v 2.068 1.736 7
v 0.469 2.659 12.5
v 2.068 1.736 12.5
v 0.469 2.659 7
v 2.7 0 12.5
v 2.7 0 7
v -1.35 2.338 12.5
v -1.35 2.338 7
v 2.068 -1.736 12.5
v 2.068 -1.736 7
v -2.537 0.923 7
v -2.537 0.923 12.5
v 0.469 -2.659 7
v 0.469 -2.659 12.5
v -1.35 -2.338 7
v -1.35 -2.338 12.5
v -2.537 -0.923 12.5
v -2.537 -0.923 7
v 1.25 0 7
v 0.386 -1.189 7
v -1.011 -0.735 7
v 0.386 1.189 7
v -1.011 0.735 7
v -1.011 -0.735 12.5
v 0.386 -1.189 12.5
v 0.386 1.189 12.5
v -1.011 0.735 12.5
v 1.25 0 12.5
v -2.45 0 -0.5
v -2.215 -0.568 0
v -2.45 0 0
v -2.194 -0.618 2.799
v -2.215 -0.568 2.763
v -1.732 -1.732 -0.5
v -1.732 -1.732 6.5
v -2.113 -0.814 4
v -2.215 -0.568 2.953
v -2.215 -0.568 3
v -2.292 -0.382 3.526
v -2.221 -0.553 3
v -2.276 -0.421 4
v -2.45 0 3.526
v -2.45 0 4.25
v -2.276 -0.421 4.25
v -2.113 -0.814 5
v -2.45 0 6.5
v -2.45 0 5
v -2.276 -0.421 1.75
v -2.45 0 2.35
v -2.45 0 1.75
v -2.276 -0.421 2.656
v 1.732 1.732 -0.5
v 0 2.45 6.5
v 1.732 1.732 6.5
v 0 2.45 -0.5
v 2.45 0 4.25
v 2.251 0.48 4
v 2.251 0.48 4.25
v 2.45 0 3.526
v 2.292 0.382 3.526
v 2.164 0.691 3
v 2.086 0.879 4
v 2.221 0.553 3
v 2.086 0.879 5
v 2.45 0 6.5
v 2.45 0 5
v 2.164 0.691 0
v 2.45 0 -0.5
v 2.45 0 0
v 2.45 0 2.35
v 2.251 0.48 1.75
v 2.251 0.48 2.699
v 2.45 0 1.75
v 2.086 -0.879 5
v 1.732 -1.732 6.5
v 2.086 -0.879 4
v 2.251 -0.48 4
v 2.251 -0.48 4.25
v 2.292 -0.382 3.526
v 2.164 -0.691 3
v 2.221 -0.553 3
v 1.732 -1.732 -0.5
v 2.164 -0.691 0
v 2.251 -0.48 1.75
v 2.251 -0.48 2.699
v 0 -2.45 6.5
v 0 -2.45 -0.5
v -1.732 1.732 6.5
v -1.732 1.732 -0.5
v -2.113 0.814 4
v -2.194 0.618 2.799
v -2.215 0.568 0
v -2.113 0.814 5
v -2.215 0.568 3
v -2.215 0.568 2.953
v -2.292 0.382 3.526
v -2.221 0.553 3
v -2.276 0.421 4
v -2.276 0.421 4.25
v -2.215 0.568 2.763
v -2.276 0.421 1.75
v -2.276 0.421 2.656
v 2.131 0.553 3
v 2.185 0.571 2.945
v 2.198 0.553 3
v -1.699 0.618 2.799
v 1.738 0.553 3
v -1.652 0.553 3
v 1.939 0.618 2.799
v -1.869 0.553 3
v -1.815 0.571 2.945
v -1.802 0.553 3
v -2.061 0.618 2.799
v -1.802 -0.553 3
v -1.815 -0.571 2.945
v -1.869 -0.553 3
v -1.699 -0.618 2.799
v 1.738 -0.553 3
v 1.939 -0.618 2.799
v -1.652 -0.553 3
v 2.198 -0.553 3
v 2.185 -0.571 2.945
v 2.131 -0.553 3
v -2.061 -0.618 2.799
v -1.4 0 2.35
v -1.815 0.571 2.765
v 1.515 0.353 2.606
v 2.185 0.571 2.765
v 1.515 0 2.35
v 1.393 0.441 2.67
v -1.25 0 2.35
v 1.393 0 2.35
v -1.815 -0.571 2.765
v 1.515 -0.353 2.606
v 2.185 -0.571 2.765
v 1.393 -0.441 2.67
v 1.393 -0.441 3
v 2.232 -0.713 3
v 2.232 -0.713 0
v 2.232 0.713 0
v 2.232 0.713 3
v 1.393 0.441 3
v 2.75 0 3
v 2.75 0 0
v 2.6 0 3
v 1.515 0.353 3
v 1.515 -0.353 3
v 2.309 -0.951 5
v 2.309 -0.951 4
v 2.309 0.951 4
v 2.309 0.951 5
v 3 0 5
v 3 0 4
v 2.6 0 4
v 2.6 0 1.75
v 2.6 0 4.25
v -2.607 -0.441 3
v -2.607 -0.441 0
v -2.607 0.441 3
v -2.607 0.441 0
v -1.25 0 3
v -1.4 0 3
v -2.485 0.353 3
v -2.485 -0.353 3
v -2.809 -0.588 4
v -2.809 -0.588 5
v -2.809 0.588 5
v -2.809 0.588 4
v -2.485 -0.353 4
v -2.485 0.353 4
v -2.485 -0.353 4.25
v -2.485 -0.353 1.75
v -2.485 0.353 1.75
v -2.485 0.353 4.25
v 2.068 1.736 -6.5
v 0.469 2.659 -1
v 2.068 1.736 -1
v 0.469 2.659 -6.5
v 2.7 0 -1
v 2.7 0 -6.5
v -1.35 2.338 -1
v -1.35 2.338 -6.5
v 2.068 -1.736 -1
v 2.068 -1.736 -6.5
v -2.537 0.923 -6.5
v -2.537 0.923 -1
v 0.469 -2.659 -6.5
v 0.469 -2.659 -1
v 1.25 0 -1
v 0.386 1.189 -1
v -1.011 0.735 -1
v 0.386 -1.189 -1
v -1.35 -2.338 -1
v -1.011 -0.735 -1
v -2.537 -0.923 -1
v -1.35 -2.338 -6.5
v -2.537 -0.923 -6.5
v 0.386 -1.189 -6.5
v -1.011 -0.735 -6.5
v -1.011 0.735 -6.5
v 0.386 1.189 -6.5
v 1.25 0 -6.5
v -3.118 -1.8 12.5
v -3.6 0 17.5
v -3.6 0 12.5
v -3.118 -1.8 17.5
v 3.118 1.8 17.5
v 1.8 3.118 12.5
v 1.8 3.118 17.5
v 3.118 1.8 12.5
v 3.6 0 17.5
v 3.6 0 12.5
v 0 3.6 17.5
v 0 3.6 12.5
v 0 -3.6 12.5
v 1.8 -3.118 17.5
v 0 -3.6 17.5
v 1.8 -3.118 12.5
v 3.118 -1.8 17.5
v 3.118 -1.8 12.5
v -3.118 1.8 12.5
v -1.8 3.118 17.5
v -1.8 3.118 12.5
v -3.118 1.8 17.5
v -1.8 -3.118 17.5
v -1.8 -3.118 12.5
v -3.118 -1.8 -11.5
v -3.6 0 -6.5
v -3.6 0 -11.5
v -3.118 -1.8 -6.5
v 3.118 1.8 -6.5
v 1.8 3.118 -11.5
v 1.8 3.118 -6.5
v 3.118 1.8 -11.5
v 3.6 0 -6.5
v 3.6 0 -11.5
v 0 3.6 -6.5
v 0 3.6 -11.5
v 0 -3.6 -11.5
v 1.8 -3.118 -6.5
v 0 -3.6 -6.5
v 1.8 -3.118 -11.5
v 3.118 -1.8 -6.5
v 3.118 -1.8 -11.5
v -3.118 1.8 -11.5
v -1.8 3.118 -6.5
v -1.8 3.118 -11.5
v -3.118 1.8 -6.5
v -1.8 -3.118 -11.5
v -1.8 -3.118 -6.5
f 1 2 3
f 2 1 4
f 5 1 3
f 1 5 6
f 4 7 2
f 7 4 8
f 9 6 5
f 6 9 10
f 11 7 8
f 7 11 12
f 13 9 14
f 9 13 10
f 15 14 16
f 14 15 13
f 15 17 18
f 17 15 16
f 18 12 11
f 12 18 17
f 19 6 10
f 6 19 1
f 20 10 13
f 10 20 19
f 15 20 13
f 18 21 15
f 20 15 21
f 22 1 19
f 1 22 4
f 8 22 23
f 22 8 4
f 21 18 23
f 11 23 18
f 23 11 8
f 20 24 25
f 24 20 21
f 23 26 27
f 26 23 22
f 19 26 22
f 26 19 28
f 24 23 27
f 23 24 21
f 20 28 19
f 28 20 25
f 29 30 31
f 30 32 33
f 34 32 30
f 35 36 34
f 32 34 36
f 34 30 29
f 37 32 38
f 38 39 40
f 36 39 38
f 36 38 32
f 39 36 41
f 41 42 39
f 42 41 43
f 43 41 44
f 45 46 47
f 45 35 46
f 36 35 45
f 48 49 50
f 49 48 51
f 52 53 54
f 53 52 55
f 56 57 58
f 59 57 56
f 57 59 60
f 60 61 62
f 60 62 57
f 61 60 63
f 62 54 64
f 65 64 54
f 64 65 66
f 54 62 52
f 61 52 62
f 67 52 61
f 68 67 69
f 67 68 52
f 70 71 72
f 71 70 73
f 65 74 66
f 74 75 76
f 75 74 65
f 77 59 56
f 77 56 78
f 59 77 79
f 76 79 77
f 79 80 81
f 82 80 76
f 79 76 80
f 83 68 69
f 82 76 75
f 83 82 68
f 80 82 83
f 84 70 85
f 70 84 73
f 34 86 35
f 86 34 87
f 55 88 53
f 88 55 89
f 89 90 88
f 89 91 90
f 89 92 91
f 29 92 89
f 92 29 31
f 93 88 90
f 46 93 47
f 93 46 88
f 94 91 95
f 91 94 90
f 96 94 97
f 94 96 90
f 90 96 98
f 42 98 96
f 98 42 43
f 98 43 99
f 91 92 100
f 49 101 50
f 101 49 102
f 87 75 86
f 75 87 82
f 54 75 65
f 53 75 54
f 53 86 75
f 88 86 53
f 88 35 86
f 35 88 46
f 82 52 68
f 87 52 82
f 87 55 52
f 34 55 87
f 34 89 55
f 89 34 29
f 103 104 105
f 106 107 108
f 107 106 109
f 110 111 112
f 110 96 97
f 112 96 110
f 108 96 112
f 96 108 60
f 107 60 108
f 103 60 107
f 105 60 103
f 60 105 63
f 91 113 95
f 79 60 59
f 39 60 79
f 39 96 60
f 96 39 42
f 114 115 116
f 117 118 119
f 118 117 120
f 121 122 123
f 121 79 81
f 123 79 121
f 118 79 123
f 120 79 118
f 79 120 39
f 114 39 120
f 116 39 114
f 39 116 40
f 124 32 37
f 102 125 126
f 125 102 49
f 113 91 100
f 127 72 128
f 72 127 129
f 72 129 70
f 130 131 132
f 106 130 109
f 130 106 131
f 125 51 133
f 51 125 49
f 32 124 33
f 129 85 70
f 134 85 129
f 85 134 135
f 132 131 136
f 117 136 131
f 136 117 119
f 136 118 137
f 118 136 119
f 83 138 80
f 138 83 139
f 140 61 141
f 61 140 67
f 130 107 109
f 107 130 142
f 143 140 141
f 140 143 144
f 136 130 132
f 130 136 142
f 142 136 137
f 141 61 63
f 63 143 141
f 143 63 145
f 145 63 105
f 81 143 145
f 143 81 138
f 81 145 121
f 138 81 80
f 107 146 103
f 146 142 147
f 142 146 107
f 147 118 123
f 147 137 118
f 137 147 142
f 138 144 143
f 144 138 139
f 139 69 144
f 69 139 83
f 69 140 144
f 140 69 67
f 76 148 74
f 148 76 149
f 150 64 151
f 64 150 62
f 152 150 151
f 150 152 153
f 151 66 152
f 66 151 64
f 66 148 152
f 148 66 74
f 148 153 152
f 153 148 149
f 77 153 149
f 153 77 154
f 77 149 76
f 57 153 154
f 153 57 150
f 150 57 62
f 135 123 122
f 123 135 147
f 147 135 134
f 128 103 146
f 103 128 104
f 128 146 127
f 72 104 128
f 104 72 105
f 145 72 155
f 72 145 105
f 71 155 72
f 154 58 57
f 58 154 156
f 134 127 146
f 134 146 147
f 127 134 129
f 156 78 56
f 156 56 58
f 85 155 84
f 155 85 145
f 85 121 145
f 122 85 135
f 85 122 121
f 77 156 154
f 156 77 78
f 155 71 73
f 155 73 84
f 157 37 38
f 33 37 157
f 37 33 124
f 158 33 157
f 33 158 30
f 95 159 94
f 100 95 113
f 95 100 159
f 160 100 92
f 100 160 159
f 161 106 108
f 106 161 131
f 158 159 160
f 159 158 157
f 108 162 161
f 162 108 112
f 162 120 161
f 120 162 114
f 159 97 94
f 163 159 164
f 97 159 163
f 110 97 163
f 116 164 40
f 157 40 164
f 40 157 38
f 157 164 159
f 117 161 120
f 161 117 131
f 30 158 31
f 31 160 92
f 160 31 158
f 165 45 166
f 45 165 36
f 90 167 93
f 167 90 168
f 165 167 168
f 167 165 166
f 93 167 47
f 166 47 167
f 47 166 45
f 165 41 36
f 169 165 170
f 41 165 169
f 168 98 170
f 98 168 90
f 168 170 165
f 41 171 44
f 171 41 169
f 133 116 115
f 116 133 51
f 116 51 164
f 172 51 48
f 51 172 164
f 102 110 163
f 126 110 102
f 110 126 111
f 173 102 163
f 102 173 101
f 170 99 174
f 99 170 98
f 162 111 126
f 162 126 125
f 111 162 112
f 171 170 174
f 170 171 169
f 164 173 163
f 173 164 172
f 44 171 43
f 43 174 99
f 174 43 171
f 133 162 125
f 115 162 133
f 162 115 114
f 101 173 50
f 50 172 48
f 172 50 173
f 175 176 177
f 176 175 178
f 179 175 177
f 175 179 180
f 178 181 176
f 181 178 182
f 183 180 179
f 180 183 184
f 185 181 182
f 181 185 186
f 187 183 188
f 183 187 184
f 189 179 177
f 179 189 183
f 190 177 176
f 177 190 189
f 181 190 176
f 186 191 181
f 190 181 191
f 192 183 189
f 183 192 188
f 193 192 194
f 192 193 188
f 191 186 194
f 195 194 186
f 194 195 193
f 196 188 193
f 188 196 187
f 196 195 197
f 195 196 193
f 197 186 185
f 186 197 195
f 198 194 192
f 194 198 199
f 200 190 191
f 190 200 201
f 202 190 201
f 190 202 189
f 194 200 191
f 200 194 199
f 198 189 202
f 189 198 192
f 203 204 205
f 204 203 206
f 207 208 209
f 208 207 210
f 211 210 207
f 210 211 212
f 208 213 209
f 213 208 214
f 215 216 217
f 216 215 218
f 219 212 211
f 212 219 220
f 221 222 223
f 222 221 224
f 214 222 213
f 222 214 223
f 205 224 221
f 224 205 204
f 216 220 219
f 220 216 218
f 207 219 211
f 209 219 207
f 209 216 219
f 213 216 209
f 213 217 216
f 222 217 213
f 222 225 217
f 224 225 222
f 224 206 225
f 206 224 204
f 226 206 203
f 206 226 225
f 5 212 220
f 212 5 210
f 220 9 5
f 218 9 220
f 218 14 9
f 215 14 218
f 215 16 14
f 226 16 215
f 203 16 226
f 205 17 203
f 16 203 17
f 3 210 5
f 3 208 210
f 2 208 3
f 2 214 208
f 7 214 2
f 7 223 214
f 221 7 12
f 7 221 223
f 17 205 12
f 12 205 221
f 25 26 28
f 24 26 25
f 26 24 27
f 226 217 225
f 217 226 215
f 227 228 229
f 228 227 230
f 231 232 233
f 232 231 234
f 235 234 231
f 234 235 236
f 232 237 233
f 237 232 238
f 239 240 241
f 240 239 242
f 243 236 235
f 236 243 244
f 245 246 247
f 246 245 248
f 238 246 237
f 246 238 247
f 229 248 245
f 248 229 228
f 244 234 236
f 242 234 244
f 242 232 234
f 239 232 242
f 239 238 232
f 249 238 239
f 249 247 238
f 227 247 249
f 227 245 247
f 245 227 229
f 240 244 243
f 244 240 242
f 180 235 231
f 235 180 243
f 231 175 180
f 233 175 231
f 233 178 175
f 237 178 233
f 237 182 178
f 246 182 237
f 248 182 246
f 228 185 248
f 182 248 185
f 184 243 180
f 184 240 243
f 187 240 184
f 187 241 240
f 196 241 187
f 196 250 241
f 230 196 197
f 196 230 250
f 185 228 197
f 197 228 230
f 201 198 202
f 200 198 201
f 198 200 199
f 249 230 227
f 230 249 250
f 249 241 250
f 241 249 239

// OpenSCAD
// Define the components
module cylindrical_base() {
    translate([0, 0, 0])
    cylinder(h=5, r1=3.6, r2=3.6, center=true); // Adjusted radius for a refined curvature
}

module small_hollow_cylinder() {
    difference() {
        translate([0, 0, 0])
        cylinder(h=6, r1=2.7, r2=2.7, center=true); // Slightly increased radius
        translate([0, 0, 0])
        cylinder(h=6, r1=1.25, r2=1.25, center=true); // Enlarged inner hollow area
    }
}

module bolt_like_fastener() {
    difference() {
        union() {
            translate([0, 0, -1.5])
            cylinder(h=3, r1=0.75, r2=0.75, center=true); // Same cylindrical base
            translate([0, 0, 1.5])
            rotate([0,0,0]) // Removed rotation for uniform threading alignment
            cylinder(h=1, r1=1, r2=1, center=true); // Shortened hexagonal head size
        }
        translate([0, 0, 0])
        rotate([0, 0, 0])
        cylinder(h=2.5, r1=0.6, r2=0.6, center=true); // Simplified threading to match original design
    }
}

module connector_cylinder_with_bolt_holes() {
    difference() {
        cylinder(h=7, r1=2.45, r2=2.45, center=true); // Adjusted diameter to match original model
        translate([-1.5, 0, 0]) // Fixed misalignment of holes
        rotate([0, 90, 0])
        cylinder(h=7, r1=0.65, r2=0.65, center=true); // Reduced hole size
        translate([1.5, 0, 0]) // Symmetrical alignment of holes
        rotate([0, 90, 0])
        cylinder(h=7, r1=0.65, r2=0.65, center=true); // Reduced hole size
    }
}

// Build the model assembly
module flexible_coupling() {
    translate([0, 0, 15]) cylindrical_base();
    translate([0, 0, 10]) small_hollow_cylinder();
    translate([0, 0, 3]) connector_cylinder_with_bolt_holes();
    translate([2, 0, 3]) bolt_like_fastener();
    translate([-2, 0, 3]) bolt_like_fastener();
    translate([0, 0, -4]) small_hollow_cylinder();
    translate([0, 0, -9]) cylindrical_base();
}

// Render the assembly
flexible_coupling();
